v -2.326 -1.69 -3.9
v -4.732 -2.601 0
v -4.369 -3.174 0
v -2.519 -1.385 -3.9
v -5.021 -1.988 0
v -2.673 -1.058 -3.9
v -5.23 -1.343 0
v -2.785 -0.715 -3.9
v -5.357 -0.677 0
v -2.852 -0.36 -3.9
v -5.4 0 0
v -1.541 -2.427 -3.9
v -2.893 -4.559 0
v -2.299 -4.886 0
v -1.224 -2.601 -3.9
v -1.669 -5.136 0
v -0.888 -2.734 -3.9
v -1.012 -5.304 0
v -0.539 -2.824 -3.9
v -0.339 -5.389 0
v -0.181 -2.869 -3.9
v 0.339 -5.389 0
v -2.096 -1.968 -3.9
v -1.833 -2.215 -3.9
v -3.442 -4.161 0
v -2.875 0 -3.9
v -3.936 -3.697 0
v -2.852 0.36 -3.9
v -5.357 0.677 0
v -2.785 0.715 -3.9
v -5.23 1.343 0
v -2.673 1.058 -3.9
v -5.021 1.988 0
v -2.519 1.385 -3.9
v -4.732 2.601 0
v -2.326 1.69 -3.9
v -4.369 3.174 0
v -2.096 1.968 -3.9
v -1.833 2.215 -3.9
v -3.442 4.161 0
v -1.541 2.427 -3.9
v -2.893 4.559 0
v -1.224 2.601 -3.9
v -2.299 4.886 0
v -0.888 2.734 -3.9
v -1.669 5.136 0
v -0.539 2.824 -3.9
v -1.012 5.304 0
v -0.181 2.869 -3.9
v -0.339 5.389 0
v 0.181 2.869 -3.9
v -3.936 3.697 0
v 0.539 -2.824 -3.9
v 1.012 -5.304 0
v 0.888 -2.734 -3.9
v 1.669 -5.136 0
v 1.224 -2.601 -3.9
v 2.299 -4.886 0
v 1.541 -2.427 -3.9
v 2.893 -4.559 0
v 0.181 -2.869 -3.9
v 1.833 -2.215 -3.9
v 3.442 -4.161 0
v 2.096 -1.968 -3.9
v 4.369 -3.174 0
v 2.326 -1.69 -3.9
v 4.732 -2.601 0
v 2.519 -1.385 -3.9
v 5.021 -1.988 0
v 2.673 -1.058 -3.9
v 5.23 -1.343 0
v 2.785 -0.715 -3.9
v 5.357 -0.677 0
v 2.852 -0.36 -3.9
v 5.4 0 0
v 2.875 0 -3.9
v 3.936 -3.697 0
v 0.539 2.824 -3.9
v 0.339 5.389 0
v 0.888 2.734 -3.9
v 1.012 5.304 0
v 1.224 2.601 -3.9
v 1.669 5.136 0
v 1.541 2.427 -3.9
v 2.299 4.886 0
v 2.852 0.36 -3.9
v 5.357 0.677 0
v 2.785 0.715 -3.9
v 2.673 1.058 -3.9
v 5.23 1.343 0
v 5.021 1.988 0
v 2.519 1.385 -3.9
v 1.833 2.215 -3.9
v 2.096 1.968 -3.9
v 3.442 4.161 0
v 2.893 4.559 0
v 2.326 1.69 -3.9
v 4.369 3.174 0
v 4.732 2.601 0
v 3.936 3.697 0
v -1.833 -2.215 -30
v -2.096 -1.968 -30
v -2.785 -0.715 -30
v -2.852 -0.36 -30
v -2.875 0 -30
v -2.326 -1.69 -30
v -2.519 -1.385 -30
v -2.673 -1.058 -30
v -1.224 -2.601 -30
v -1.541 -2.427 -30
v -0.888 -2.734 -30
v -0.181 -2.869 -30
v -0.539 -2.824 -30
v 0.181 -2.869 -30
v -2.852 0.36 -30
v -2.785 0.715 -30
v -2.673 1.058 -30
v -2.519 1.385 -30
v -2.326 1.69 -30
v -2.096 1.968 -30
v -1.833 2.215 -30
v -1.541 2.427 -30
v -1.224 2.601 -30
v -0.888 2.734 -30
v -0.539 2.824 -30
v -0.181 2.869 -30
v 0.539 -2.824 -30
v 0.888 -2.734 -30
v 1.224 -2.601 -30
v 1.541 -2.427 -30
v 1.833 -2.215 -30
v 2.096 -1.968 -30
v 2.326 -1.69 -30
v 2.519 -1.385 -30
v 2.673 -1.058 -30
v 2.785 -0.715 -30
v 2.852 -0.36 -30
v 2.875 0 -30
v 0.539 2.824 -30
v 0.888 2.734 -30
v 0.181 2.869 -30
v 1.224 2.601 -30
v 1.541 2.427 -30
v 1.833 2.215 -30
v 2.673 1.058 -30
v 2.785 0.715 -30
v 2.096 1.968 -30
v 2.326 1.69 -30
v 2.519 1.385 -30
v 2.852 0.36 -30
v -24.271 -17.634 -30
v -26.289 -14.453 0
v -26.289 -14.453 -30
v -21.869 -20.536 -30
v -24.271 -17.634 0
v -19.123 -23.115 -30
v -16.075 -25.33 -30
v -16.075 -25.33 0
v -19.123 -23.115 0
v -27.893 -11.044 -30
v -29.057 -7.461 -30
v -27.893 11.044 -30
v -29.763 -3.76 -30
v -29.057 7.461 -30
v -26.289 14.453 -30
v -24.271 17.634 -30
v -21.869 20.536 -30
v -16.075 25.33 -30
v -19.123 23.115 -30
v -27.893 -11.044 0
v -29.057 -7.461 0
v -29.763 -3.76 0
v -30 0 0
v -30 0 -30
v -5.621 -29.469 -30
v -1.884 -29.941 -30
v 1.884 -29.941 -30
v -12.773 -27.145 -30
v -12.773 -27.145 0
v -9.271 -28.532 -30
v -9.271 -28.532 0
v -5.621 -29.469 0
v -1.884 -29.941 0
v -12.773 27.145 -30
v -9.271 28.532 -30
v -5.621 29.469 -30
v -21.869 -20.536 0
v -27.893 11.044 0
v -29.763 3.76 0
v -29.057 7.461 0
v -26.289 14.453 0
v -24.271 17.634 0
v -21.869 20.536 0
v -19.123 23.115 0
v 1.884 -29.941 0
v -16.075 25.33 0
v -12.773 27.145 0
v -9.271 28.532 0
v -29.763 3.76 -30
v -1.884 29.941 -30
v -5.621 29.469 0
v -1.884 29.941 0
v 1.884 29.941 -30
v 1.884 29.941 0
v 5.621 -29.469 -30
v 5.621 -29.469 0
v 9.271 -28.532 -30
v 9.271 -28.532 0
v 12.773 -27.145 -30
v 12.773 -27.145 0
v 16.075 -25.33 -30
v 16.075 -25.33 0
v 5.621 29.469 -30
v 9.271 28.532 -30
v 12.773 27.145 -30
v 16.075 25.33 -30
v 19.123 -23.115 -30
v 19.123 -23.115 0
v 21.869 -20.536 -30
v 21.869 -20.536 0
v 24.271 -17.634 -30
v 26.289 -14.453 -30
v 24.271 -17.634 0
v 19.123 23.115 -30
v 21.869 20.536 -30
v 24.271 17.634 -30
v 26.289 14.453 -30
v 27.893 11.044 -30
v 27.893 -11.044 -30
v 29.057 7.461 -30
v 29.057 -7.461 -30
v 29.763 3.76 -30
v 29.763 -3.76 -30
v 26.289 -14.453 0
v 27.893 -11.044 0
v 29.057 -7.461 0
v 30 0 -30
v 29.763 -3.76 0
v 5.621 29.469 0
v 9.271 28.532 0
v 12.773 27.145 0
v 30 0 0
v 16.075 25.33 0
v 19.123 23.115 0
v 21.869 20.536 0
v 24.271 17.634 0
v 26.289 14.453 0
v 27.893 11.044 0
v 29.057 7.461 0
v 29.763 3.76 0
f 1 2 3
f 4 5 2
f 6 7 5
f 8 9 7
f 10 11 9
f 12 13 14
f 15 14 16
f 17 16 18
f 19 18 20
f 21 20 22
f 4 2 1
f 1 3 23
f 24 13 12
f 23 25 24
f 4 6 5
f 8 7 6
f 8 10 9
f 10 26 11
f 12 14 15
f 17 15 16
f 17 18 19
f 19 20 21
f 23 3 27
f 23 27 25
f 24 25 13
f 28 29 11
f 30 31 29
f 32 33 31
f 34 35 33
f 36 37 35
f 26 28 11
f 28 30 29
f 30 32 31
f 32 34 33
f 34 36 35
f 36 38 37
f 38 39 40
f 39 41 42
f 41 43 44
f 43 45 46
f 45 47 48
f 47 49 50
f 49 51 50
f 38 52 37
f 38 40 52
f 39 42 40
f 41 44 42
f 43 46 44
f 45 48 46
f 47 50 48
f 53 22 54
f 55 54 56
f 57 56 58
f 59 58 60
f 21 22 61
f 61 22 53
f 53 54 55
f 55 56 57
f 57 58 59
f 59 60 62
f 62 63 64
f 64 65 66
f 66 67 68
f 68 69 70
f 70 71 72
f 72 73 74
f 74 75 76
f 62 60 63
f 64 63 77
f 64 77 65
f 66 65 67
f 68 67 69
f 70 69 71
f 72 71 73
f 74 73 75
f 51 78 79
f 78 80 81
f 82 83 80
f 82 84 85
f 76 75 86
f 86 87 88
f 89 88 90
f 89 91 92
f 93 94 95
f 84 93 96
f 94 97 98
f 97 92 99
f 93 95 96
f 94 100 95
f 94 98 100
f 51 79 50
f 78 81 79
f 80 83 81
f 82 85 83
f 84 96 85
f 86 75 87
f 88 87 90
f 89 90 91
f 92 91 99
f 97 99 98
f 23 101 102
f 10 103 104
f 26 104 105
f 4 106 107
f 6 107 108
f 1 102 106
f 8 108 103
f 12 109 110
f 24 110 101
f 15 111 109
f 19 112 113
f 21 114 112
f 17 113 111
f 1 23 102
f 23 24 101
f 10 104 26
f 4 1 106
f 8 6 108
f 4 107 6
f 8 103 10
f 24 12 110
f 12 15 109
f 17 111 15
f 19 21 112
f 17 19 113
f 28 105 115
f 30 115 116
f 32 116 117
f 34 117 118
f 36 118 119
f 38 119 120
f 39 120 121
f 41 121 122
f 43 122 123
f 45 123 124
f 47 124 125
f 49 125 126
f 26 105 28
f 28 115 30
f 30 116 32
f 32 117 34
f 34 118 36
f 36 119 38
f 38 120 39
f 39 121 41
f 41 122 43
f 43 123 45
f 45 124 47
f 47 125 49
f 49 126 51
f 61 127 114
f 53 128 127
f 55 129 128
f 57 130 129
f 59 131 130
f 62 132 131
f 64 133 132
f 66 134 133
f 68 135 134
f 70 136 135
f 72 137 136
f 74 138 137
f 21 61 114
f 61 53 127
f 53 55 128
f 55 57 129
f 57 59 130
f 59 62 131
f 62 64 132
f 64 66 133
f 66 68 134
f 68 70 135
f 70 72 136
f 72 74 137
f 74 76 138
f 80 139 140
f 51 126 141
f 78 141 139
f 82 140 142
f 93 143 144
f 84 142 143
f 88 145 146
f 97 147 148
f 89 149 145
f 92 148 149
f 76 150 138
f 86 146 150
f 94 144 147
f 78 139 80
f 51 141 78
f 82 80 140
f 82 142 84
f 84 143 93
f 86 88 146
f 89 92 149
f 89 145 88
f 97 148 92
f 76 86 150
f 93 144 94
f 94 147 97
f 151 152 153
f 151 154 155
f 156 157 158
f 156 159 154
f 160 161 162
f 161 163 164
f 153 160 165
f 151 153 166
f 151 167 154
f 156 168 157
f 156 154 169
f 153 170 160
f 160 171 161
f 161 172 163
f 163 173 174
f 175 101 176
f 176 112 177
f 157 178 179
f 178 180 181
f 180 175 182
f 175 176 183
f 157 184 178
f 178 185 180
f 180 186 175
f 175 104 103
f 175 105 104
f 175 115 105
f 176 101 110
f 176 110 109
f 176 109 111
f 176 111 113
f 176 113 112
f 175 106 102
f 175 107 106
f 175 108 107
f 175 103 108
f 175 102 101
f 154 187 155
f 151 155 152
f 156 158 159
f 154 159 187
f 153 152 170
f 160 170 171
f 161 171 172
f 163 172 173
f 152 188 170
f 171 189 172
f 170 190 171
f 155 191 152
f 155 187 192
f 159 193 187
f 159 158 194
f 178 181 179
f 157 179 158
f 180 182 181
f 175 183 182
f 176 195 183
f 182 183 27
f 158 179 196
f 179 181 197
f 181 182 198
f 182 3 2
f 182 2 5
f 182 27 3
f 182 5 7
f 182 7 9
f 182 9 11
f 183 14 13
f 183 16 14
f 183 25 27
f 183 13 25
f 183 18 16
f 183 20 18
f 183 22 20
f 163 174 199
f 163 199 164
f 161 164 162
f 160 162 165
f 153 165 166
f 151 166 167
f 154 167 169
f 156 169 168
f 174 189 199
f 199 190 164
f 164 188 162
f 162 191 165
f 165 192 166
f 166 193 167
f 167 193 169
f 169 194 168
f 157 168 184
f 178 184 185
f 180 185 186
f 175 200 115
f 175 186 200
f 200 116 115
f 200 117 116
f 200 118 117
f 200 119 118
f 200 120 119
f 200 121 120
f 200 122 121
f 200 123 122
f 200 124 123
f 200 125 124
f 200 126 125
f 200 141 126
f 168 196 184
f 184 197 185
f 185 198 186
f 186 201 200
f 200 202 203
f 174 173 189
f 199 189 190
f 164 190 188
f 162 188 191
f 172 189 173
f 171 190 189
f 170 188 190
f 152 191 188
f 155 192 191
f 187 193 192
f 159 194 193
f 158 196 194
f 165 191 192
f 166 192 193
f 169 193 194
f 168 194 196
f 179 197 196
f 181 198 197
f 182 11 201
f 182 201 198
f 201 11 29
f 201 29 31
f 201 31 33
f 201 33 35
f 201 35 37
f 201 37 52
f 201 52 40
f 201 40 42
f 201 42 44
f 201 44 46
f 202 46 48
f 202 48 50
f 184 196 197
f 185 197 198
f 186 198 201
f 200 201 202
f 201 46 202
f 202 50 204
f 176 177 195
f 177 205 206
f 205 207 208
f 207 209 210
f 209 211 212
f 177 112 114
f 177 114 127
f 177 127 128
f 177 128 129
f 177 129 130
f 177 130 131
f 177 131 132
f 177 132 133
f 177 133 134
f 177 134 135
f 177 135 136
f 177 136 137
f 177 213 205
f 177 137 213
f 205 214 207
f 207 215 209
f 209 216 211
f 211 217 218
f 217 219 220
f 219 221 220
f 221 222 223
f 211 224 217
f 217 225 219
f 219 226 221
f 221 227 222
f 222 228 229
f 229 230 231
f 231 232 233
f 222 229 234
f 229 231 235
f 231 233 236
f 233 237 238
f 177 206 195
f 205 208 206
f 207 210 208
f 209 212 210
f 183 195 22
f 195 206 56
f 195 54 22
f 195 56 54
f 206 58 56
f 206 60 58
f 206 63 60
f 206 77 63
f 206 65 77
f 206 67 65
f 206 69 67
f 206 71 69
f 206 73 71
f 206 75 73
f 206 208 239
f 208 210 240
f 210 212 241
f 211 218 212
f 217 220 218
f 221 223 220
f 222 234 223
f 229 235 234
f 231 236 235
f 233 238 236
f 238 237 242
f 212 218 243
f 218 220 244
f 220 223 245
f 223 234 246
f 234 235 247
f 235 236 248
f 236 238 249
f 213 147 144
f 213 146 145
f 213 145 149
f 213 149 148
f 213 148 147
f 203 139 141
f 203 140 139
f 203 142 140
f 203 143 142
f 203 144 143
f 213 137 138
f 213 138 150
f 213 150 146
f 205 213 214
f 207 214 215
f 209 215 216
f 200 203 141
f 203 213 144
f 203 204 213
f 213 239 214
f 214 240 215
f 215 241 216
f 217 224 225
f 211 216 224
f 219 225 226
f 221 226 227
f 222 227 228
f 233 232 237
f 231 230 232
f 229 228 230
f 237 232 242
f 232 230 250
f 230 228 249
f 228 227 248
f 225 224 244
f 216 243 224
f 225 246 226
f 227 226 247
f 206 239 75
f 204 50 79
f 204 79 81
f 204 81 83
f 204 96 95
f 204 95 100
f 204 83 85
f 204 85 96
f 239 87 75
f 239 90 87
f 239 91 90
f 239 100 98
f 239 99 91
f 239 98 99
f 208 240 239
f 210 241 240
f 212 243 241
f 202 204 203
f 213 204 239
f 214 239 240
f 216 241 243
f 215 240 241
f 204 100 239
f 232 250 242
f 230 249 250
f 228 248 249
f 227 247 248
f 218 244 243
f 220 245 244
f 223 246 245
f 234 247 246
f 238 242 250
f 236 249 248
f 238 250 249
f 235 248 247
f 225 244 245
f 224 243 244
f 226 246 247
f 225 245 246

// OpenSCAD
$fn = 50;

difference() {
	union() {
		translate(v = [0, 0, -30.0]) {
			cylinder(h = 30, r = 30.0);
		}
	}
	union() {
		translate(v = [0, 0, 0]) {
			rotate(a = [0, 0, 0]) {
				difference() {
					union() {
						translate(v = [0, 0, -33.0]) {
							cylinder(h = 33, r = 2.6);
						}
						translate(v = [0, 0, -3.9]) {
							cylinder(h = 3.9, r1 = 2.875, r2 = 5.4);
						}
						translate(v = [0, 0, -33.0]) {
							cylinder(h = 33, r = 2.875);
						}
						translate(v = [0, 0, -33.0]) {
							cylinder(h = 33, r = 2.6);
						}
					}
					union();
				}
			}
		}
	}
}
